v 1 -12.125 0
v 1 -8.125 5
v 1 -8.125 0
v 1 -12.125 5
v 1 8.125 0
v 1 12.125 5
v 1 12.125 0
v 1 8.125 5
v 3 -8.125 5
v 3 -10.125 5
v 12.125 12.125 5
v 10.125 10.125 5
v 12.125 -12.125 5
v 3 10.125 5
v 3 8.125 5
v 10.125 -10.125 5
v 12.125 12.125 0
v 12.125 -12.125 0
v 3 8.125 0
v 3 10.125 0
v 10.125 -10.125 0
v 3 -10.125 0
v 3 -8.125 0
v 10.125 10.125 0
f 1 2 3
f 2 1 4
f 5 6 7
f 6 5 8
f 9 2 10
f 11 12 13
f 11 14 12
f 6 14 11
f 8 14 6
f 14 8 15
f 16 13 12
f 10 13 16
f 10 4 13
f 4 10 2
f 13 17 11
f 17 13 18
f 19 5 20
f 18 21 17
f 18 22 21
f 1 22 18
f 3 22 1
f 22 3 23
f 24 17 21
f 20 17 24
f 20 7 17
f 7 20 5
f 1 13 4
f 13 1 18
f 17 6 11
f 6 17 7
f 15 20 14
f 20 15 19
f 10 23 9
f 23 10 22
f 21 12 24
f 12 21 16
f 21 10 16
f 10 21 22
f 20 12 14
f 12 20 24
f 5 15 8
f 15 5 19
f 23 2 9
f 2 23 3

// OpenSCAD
// file: 00_GlobalVariables.scad
$fn = 100;

eps = 0.05;

Rail_D = 12.0 + 0.5;

// 01_StepperMount.scad

Stepper_W = 42.0;
Stepper_Hole_S = 31.0;
Stepper_Hole_D = 4.0;
Stepper_Coupler_D = 22.0 + 0.5;

Stepper_Mount_L = 37.0;
Stepper_Mount_Flange_T = 5.0;
Stepper_Mount_Chamfer = 4.0;

Stepper_Mount_Wrench_Slot_S = 3.0;
Stepper_Mount_Wrench_Slot_Offset = 10.0;

Stepper_Mount_Nut_Slot_T = 4.5;
Stepper_Mount_Nut_Slot_D = 9.5;

Stepper_Mount_Hole_D = 6.0;

// 02_RodMountEndstop.scad

Rod_Mount_L = 100;
Rod_Mount_W = 60;
Rod_Mount_T = 10;

Rotary_Bearing_T = 7.0;
Rotary_Bearing_OD = 22.225 + 0.25;
Rotary_Bearing_ID = 10.0 + 5.0;
//Rotary_Bearing_ID = Stepper_Coupler_D;

Rod_Mount_Hole_Sx = 60;
Rod_Mount_Hole_Sy = 36;
Rod_Mount_Hole_D = 6;

Endstop_Switch_L = 20 + 0.5;
Endstop_Switch_W = 6.5 + 0.25;
Endstop_Switch_D = 5.5;
Endstop_Switch_S = 6.0;

Endstop_Switch_Hole_D = 4;
Endstop_Switch_Hole_S = 8;

// 03_ToolheadSled.scad

// For 1/4"-20 x 1" countersink screw
Screw_Head_S = 7.0;
Screw_Head_D = 12.0 + 0.75;
Screw_Head_T = 5.0;
Screw_Body_D = 6.5;

Guide_Rod_D = 9.5 + 1.5;

Toolhead_Nut_T = 8.5 + 1.0 - 0.125;
Toolhead_Nut_W = 20.0 + 1.0;

Toolhead_Bearing_ID = 12.0 + 0.75;
Toolhead_Bearing_OD = 21.0 + 0.50 - 0.125;
Toolhead_Bearing_L = 30.0;
Toolhead_Bearing_S = Rod_Mount_Hole_Sx;

Toolhead_Margin = 5.0;

// 05_YAxisCup.scad

Y_Axis_Cup_D = 10.0;
Y_Axis_Cup_T = 2.5;
Y_Axis_Cup_M = 0.25;

XZSled_Bearing_OD = Toolhead_Bearing_OD + 0.50 - 0.125;

Extrusion_W = 20.0 + 0.25;

M5_Washer_D = 10.0;
M5_Head_H = 6.0;
M5_Bolt_D = 6.0;
M5_Bolt_L = 16.0;
// main file
include <00_GlobalVariables.scad>

thk = 2.0;

xdim = (Extrusion_W - 6.0)/2.0+2*thk;
ydim = Extrusion_W+2*thk;
zdim = 5.0;

translate([Extrusion_W/2.0-xdim+thk,-ydim/2.0,0])
    difference(){
        cube([xdim,ydim,zdim]);
        translate([thk,thk,-eps])
            cube([xdim-2*thk, ydim-2*thk, zdim+2*eps]);
        translate([-eps,2*thk,-eps])
            cube([thk+2*eps,ydim-4*thk,zdim+2*eps]);
    }
